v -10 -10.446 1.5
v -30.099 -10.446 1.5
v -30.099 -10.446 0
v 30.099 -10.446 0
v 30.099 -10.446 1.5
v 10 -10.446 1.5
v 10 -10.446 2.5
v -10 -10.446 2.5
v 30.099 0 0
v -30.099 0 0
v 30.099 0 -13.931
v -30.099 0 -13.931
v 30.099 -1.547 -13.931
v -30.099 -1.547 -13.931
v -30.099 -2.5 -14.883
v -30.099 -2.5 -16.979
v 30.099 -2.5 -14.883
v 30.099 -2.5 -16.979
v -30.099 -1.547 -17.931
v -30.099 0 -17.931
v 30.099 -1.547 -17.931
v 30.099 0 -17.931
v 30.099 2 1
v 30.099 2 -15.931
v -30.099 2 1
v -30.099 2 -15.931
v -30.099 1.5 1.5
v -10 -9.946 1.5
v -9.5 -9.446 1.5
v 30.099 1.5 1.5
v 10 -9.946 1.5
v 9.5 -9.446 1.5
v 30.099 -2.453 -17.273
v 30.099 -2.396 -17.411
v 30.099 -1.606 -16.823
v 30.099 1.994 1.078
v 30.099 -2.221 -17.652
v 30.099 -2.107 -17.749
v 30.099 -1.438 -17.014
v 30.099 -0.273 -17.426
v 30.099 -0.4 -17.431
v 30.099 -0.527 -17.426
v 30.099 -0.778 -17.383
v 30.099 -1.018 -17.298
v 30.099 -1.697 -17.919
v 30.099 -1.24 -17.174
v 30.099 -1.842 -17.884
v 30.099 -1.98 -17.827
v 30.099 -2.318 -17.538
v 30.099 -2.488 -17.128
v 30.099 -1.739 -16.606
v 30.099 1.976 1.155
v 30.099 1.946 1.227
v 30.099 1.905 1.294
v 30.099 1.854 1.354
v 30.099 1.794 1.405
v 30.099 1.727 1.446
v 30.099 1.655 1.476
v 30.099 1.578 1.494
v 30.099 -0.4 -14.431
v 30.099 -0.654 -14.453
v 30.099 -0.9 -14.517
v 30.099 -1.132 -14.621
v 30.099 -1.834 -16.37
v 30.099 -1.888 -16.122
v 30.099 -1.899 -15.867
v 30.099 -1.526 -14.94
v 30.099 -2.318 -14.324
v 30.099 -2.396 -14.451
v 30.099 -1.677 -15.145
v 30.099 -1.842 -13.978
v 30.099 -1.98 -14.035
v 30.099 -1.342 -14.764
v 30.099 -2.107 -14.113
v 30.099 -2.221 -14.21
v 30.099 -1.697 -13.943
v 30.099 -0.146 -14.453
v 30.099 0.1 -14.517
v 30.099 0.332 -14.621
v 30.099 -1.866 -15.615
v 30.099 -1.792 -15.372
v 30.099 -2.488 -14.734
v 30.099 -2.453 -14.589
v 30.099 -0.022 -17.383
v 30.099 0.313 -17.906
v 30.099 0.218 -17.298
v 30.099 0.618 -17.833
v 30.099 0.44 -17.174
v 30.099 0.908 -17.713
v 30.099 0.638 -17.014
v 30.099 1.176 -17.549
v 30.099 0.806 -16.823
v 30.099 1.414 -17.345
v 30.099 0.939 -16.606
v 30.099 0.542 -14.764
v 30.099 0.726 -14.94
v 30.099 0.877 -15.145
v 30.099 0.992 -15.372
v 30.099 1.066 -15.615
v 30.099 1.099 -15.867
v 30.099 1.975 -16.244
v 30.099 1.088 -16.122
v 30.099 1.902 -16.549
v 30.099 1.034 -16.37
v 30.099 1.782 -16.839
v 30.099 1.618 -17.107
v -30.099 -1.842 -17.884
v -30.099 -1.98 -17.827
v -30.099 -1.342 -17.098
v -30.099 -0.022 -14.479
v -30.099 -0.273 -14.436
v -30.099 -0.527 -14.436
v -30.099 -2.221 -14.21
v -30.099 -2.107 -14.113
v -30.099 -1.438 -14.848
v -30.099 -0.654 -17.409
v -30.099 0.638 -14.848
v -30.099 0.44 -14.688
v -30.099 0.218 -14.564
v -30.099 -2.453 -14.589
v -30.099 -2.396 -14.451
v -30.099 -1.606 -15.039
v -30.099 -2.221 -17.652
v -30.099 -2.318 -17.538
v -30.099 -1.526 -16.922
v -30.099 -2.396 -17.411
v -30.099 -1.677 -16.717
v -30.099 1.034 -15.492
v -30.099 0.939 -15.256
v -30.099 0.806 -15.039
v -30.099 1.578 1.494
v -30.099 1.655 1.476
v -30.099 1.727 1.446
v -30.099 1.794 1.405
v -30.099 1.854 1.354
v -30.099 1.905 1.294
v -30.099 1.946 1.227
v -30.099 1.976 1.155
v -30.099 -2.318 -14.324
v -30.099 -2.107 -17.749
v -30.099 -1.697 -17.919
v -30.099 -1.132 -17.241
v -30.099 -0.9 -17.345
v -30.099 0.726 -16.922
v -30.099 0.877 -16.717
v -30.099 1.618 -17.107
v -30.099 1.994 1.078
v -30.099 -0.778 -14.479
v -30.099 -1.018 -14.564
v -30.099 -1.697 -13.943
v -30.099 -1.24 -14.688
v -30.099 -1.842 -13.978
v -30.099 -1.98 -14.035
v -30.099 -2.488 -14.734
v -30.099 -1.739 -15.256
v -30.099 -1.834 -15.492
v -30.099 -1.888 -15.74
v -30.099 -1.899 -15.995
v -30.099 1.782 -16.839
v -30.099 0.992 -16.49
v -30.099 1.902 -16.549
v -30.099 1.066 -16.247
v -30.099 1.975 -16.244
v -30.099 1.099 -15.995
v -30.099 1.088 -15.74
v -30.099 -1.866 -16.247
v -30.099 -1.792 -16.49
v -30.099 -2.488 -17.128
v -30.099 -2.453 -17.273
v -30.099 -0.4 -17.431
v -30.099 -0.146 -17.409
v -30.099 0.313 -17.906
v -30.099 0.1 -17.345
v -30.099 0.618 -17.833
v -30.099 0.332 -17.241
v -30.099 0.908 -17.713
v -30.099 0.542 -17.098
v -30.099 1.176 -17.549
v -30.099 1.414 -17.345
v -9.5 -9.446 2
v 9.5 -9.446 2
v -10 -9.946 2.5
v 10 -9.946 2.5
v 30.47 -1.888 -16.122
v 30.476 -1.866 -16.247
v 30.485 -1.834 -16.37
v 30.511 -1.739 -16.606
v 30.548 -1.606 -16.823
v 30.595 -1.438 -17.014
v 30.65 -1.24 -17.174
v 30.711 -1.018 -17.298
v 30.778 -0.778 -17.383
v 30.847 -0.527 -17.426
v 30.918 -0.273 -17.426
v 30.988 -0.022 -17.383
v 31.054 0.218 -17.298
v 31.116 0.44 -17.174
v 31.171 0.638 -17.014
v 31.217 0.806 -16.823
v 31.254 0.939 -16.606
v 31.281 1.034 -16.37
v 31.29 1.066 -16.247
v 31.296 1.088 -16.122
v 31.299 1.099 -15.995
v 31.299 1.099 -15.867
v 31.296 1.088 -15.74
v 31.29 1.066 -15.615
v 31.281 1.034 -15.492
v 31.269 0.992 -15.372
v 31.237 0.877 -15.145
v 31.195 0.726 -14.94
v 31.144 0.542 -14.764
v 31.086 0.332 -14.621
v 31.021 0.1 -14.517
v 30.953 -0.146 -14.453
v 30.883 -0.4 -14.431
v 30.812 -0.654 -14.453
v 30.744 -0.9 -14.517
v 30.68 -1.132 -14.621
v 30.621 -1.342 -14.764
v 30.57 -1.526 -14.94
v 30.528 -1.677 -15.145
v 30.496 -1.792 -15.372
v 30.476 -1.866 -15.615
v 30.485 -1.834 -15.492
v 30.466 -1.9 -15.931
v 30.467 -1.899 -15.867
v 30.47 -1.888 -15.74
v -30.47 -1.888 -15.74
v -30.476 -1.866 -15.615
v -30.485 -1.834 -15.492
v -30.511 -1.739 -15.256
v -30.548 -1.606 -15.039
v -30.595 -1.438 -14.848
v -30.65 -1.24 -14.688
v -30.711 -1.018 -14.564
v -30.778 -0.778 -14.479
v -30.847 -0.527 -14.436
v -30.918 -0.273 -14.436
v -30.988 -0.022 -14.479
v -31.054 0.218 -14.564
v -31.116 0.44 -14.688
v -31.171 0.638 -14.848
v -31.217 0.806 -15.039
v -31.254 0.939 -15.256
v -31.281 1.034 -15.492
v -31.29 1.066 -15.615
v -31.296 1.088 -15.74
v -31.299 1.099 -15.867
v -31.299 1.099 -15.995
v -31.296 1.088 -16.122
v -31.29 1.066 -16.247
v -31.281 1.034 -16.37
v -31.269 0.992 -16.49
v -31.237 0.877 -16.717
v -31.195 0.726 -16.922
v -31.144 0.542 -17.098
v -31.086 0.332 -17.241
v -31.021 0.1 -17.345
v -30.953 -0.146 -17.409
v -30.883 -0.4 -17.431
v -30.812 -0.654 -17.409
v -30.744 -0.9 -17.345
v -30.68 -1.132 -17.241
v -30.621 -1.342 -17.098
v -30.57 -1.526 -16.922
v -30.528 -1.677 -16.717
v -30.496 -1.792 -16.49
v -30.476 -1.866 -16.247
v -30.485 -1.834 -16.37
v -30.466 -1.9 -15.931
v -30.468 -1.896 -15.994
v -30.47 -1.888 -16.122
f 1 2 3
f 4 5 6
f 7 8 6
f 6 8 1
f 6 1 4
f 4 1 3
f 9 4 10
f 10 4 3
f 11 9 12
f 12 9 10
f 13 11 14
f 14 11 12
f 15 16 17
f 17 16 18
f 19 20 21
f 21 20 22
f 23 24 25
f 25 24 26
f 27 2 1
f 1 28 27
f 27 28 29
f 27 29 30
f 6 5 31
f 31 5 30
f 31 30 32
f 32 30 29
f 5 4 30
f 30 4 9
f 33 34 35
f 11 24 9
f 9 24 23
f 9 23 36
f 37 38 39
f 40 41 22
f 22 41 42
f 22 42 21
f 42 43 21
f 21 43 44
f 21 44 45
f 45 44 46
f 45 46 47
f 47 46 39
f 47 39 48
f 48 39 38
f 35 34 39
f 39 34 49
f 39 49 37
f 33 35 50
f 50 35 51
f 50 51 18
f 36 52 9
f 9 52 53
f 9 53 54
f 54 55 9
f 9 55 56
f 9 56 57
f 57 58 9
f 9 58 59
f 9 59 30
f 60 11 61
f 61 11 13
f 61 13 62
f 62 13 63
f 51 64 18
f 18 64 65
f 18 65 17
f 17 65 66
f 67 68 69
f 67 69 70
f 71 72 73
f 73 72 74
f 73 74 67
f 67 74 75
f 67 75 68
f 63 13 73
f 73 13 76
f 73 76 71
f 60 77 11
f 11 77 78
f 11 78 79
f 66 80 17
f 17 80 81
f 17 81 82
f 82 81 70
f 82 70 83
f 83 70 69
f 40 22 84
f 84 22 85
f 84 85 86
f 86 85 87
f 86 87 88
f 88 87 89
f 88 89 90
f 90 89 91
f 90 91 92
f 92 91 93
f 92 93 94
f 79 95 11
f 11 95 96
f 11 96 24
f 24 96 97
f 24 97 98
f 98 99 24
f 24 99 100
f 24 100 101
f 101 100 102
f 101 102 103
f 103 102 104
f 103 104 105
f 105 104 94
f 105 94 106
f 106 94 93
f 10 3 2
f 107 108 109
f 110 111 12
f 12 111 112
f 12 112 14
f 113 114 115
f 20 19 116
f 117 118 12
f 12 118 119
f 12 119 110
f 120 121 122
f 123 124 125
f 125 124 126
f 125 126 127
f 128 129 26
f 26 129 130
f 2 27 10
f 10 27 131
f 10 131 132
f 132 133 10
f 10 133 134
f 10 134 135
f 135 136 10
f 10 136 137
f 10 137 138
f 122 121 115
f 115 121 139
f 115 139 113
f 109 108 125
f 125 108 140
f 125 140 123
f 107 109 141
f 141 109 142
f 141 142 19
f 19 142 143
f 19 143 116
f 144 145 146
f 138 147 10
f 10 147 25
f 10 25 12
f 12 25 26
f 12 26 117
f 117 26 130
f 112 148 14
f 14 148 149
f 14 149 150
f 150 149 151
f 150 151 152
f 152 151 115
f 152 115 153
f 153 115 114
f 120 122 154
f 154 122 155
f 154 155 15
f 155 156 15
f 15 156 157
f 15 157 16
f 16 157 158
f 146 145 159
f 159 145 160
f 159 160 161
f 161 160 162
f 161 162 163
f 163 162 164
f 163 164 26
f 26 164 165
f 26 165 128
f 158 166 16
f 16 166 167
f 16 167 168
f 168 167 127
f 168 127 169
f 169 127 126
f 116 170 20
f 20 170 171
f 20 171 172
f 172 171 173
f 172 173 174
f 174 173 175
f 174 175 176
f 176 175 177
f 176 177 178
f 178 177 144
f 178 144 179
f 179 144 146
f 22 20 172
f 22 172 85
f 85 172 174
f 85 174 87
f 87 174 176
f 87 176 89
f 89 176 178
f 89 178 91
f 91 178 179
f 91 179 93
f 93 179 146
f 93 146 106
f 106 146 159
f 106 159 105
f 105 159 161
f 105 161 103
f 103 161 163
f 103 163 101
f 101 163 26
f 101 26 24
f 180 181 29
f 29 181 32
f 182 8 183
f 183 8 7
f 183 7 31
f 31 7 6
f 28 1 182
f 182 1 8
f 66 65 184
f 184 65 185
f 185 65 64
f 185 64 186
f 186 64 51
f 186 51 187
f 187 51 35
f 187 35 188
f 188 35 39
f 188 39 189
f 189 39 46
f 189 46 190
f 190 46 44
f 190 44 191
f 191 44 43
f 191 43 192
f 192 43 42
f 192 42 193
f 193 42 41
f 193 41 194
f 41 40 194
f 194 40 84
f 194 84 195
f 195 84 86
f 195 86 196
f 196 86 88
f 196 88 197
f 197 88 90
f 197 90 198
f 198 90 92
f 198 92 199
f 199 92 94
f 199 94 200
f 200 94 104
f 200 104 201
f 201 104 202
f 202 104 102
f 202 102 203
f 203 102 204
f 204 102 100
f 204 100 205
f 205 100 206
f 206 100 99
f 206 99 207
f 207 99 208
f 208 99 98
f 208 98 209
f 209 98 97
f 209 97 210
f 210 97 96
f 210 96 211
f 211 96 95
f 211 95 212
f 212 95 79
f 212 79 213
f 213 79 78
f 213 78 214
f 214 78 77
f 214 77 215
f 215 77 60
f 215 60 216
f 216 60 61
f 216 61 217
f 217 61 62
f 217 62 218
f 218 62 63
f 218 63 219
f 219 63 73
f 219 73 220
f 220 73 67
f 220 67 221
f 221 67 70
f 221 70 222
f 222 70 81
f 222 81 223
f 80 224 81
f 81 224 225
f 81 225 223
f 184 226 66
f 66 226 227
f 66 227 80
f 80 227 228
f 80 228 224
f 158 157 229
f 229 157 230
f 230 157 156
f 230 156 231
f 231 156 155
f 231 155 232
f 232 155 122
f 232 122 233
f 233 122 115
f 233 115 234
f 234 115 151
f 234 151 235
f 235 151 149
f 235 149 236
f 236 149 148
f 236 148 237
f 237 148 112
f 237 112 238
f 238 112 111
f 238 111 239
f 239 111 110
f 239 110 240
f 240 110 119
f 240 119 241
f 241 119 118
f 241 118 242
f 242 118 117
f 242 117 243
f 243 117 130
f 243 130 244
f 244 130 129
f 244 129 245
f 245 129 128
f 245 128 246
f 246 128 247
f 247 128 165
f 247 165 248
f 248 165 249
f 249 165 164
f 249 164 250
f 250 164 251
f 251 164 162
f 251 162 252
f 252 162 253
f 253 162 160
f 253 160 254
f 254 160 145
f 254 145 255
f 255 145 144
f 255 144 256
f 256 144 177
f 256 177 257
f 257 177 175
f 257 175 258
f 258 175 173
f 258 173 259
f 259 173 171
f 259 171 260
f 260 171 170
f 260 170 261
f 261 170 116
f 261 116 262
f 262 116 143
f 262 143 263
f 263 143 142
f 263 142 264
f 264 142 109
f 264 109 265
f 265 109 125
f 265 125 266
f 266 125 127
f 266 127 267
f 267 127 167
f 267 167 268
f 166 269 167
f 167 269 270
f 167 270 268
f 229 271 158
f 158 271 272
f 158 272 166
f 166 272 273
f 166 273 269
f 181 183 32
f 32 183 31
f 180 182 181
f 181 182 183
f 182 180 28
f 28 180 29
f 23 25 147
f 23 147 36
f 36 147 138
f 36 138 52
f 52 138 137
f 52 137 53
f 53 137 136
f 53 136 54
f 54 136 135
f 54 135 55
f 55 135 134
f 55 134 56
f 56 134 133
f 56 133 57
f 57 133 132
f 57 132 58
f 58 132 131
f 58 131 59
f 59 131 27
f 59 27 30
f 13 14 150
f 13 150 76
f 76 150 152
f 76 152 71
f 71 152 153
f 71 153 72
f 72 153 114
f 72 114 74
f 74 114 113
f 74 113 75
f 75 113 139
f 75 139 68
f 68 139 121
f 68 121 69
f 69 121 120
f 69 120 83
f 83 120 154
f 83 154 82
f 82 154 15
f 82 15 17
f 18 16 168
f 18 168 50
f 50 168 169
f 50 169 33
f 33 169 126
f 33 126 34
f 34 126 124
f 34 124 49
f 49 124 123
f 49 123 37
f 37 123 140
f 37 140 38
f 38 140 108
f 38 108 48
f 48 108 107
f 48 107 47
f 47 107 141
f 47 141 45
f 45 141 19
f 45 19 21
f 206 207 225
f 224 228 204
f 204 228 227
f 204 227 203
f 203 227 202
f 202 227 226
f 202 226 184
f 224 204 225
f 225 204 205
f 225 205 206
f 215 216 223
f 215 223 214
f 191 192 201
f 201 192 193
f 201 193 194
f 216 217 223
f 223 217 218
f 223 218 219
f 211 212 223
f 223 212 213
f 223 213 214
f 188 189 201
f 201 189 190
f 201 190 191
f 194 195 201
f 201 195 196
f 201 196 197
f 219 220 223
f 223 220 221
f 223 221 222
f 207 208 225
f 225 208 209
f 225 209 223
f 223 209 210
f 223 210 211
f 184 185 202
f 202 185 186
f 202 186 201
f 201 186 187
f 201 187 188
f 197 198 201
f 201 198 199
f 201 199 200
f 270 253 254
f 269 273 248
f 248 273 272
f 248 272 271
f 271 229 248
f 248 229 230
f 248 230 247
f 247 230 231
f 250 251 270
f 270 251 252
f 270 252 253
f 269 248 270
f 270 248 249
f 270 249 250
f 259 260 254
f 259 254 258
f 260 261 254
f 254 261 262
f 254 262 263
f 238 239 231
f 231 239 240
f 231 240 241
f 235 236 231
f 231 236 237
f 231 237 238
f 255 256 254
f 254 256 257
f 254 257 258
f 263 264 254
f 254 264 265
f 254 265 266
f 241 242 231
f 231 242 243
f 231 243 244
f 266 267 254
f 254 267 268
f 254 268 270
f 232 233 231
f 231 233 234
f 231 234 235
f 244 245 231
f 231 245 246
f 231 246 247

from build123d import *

# Parameters (mm, degrees)
BOSS_EXTRUDE1_DEPTH     = 30.099
FILLET1_R               = 2
SKETCH2_W               = 1
SKETCH2_H               = 1
BOSS_EXTRUDE2_DEPTH     = 10
SKETCH3_R               = 1.5
BOSS_EXTRUDE3_DEPTH     = 1.2
CHAMFER1_SIZE           = 0.5
FILLET3_R               = 0.5
FILLET4_R               = 0.9525
CUT_EXTRUDE2_DEPTH      = 39.292428468
CUT_EXTRUDE2_DEPTH_BACK = 39.292428468


with BuildPart() as part:
    # Sketch1 → Boss-Extrude1 (new, symmetric)
    with BuildSketch(Plane(origin=(0, 0, 0), x_dir=(0, 0, -1), z_dir=(1, 0, 0))):
        Polygon((0, -10.446), (0, 0), (13.931, 0), (13.931, -2.5), (17.931, -2.5), (17.931, 2), (-1.5, 2), (-1.5, -10.446), align=None)
    extrude(amount=BOSS_EXTRUDE1_DEPTH, both=True)

    # Fillet1
    fillet1_edges = [part.edges().sort_by_distance(p)[0] for p in [
        (0, 2, -17.931),
    ]]
    fillet(fillet1_edges, radius=FILLET1_R)

    # Sketch2 → Boss-Extrude2 (add, symmetric)
    with BuildSketch(Plane(origin=(0, 0, 0), x_dir=(0, 0, -1), z_dir=(1, 0, 0))):
        with Locations((-2, -9.946)):
            Rectangle(SKETCH2_W, SKETCH2_H)
    extrude(amount=BOSS_EXTRUDE2_DEPTH, both=True)

    # Sketch3 → Boss-Extrude3 (add)
    with BuildSketch(Plane(origin=(30.099, 0, 0), x_dir=(0, 0, -1), z_dir=(1, 0, 0))):
        with Locations((15.931, -0.4)):
            Circle(SKETCH3_R)
    boss_extrude3 = extrude(amount=BOSS_EXTRUDE3_DEPTH)

    # Mirror1: Boss-Extrude3 across plane
    add(boss_extrude3.mirror(Plane(origin=(0, 0, 0), x_dir=(0, 0, 1), z_dir=(1, 0, 0))))

    # Chamfer1
    chamfer1_edges = [part.edges().sort_by_distance(p)[0] for p in [
        (-10, -9.446, 2),
        (0, -9.446, 2.5),
        (10, -9.446, 2),
    ]]
    chamfer(chamfer1_edges, length=CHAMFER1_SIZE)

    # Fillet3
    fillet3_edges = [part.edges().sort_by_distance(p)[0] for p in [
        (0, 2, 1.5),
    ]]
    fillet(fillet3_edges, radius=FILLET3_R)

    # Fillet4
    fillet4_edges = [part.edges().sort_by_distance(p)[0] for p in [
        (0, -2.5, -17.931),
        (0, -2.5, -13.931),
    ]]
    fillet(fillet4_edges, radius=FILLET4_R)

    # Sketch8 → Cut-Extrude2 (cut, two sides: drawn at the far end of the back side and taken through both)
    with BuildSketch(Plane.XY.offset(1.5).offset(-CUT_EXTRUDE2_DEPTH_BACK)):
        Polygon((30.466401846, -1.9), (31.299, 1.1), (31.299, -1.9), align=None)
        Polygon((-31.299, -1.9), (-30.466401846, -1.9), (-31.299, 1.1), align=None)
    extrude(amount=CUT_EXTRUDE2_DEPTH + CUT_EXTRUDE2_DEPTH_BACK, mode=Mode.SUBTRACT)


solid = part.part
